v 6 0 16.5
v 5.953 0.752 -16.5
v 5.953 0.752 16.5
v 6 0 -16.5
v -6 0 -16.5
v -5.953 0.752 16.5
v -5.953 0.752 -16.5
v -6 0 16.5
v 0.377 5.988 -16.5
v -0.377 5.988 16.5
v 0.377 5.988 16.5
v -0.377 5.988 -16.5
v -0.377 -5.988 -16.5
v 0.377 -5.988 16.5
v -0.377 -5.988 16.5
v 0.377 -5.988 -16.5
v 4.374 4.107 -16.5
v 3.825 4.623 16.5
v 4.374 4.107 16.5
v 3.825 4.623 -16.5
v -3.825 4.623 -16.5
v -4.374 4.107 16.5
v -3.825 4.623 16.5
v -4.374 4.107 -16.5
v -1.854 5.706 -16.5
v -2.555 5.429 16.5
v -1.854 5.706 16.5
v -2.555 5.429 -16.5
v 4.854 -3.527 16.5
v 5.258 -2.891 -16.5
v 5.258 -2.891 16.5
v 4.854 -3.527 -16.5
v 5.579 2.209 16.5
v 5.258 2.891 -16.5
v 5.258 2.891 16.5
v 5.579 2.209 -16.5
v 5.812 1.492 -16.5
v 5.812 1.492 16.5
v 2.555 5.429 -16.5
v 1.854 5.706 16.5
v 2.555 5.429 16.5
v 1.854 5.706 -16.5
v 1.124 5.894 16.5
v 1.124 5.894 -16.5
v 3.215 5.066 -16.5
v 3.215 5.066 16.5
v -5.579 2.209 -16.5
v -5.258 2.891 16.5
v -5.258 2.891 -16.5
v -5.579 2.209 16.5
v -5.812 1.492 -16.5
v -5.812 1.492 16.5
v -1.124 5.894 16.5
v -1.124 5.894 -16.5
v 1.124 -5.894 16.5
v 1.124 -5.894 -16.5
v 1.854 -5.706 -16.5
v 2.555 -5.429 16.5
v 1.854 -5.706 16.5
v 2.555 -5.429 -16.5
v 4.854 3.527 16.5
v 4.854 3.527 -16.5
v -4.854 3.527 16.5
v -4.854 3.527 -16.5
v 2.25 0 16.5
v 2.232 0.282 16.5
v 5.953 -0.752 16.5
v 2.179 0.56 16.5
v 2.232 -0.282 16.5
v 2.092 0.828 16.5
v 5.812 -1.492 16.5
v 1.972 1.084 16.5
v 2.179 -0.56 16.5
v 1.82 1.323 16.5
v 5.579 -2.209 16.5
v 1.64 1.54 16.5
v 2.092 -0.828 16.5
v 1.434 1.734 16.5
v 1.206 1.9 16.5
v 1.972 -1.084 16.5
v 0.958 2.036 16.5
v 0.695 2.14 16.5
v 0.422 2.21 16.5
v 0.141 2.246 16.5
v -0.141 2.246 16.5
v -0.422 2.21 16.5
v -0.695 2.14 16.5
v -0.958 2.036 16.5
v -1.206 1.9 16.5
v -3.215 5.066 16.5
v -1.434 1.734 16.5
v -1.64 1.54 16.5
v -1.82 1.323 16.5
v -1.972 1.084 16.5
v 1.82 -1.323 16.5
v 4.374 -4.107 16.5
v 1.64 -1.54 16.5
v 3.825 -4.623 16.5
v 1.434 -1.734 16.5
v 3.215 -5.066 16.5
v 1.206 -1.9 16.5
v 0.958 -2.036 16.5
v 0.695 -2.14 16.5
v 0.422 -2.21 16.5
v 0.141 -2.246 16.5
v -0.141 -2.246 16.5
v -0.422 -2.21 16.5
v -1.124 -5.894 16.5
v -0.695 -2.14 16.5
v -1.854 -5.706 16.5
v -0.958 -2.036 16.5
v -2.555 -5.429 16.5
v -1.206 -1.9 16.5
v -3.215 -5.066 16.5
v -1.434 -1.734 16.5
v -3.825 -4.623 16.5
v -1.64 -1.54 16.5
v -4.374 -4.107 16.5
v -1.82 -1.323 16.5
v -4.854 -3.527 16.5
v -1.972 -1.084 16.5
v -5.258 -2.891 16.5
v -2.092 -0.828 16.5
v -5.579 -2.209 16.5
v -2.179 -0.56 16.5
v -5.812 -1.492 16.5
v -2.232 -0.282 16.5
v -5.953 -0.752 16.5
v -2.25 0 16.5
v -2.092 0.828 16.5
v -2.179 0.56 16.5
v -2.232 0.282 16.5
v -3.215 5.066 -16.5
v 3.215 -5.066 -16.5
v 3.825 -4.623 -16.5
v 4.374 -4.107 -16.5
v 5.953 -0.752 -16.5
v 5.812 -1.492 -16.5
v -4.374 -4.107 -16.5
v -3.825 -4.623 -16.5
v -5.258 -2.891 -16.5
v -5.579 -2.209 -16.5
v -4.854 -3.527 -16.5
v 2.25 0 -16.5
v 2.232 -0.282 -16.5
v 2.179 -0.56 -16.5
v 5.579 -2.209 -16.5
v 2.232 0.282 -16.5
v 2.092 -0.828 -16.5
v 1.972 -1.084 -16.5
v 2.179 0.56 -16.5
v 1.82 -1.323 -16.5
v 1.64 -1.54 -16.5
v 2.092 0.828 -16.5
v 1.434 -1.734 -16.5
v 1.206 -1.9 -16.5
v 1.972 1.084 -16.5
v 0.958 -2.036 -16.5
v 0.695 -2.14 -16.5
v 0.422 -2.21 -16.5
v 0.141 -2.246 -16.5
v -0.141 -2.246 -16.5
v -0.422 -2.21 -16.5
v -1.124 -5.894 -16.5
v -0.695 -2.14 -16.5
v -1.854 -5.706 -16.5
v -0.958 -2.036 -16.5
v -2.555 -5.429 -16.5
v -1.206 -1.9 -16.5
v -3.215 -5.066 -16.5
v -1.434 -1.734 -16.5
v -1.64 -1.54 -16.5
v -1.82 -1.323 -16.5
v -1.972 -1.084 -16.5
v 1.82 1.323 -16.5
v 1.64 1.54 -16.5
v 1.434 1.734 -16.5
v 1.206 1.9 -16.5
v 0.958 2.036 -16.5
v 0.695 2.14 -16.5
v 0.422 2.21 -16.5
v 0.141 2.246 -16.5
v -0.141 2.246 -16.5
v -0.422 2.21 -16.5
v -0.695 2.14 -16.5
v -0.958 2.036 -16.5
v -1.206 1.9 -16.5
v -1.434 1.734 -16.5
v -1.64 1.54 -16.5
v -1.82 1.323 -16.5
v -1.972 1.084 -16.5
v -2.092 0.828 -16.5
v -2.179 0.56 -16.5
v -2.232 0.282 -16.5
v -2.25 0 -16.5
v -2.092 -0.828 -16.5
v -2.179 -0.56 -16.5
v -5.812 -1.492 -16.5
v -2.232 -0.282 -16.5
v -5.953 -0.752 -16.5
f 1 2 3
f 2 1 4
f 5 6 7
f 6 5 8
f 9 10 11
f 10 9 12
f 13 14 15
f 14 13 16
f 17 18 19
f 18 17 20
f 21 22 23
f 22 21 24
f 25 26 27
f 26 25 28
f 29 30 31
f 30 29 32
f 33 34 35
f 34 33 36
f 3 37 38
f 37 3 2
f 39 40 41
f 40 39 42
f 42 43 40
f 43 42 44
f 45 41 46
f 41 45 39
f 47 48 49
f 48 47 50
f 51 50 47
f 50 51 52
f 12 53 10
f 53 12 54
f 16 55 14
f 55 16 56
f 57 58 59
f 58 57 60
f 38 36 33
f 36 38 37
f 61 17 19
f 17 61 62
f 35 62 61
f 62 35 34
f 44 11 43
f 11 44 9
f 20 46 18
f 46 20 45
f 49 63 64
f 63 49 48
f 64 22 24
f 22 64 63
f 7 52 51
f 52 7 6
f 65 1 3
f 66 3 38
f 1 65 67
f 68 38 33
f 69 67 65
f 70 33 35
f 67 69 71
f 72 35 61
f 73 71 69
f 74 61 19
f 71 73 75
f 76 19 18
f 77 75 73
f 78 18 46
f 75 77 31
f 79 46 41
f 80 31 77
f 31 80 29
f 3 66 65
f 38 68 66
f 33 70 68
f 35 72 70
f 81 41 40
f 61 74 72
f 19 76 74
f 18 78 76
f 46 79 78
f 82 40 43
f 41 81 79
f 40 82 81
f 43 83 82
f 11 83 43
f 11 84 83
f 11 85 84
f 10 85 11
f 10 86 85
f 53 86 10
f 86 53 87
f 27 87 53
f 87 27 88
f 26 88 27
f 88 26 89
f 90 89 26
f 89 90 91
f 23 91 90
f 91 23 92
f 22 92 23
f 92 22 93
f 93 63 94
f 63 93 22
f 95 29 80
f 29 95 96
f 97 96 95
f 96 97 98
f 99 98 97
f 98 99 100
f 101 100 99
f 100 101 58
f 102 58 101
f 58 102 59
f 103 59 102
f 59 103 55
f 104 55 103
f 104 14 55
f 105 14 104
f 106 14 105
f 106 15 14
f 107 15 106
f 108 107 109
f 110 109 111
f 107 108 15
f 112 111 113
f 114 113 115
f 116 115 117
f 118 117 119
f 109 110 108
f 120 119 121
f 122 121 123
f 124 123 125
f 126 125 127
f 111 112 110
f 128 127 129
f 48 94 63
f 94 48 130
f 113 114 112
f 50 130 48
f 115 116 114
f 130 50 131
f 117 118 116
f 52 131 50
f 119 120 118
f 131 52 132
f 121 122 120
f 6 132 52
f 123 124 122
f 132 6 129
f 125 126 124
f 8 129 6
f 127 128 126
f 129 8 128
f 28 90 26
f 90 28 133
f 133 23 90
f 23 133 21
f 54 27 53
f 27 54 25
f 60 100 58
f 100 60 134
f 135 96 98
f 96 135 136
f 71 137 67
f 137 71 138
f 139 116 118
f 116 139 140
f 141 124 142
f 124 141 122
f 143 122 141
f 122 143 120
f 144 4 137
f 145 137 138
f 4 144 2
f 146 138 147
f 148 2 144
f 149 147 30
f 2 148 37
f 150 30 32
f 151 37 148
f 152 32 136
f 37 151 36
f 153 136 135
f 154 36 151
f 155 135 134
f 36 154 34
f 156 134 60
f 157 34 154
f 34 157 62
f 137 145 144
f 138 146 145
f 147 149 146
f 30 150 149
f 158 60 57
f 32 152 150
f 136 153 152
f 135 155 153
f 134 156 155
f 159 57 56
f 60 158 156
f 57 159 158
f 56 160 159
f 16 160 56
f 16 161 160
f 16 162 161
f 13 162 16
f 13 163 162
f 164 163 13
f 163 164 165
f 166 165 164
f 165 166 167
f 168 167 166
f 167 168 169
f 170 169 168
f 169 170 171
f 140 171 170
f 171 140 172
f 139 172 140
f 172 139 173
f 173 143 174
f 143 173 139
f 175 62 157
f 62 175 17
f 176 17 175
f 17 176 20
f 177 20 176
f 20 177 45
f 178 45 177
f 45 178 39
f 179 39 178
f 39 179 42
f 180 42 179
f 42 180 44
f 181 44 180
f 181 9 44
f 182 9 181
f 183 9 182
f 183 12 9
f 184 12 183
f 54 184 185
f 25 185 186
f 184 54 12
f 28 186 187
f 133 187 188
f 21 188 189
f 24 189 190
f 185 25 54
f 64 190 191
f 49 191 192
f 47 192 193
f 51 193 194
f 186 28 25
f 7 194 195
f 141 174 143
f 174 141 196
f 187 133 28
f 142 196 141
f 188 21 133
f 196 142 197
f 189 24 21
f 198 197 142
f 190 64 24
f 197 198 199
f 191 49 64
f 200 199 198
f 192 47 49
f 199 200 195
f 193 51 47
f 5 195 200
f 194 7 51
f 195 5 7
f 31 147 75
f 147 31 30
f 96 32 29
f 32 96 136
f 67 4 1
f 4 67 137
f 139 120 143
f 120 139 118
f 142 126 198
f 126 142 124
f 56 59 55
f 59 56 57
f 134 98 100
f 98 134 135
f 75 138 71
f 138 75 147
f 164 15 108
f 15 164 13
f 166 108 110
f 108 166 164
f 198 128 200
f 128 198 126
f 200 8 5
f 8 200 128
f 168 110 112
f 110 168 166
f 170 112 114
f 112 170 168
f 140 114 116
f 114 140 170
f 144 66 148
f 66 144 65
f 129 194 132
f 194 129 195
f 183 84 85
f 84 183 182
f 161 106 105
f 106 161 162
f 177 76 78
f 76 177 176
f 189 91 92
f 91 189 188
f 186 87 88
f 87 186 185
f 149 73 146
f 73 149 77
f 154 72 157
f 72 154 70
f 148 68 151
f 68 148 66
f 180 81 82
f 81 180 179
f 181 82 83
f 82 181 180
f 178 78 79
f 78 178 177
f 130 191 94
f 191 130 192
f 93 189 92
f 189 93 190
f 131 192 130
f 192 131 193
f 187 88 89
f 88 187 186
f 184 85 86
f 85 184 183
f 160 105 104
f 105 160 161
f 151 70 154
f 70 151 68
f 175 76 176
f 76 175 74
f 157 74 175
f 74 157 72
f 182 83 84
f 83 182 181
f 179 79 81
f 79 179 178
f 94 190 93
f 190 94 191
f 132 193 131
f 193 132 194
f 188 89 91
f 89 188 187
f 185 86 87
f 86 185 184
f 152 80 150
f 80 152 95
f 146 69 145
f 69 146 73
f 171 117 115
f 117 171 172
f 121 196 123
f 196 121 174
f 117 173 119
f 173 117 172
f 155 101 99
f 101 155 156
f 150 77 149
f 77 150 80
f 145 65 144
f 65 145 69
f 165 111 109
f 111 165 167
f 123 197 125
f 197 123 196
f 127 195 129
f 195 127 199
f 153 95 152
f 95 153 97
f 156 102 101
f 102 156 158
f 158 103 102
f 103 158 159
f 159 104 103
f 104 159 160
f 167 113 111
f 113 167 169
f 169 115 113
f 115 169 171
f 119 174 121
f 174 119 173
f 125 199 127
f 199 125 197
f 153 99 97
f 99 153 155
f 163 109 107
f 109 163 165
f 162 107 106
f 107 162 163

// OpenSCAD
$fn = 50;


difference() {
	union() {
		translate(v = [0, 0, -16.5000000000]) {
			cylinder(h = 33, r = 6.0000000000);
		}
	}
	union() {
		translate(v = [0, 0, -100.0000000000]) {
			cylinder(h = 200, r = 2.2500000000);
		}
	}
}
